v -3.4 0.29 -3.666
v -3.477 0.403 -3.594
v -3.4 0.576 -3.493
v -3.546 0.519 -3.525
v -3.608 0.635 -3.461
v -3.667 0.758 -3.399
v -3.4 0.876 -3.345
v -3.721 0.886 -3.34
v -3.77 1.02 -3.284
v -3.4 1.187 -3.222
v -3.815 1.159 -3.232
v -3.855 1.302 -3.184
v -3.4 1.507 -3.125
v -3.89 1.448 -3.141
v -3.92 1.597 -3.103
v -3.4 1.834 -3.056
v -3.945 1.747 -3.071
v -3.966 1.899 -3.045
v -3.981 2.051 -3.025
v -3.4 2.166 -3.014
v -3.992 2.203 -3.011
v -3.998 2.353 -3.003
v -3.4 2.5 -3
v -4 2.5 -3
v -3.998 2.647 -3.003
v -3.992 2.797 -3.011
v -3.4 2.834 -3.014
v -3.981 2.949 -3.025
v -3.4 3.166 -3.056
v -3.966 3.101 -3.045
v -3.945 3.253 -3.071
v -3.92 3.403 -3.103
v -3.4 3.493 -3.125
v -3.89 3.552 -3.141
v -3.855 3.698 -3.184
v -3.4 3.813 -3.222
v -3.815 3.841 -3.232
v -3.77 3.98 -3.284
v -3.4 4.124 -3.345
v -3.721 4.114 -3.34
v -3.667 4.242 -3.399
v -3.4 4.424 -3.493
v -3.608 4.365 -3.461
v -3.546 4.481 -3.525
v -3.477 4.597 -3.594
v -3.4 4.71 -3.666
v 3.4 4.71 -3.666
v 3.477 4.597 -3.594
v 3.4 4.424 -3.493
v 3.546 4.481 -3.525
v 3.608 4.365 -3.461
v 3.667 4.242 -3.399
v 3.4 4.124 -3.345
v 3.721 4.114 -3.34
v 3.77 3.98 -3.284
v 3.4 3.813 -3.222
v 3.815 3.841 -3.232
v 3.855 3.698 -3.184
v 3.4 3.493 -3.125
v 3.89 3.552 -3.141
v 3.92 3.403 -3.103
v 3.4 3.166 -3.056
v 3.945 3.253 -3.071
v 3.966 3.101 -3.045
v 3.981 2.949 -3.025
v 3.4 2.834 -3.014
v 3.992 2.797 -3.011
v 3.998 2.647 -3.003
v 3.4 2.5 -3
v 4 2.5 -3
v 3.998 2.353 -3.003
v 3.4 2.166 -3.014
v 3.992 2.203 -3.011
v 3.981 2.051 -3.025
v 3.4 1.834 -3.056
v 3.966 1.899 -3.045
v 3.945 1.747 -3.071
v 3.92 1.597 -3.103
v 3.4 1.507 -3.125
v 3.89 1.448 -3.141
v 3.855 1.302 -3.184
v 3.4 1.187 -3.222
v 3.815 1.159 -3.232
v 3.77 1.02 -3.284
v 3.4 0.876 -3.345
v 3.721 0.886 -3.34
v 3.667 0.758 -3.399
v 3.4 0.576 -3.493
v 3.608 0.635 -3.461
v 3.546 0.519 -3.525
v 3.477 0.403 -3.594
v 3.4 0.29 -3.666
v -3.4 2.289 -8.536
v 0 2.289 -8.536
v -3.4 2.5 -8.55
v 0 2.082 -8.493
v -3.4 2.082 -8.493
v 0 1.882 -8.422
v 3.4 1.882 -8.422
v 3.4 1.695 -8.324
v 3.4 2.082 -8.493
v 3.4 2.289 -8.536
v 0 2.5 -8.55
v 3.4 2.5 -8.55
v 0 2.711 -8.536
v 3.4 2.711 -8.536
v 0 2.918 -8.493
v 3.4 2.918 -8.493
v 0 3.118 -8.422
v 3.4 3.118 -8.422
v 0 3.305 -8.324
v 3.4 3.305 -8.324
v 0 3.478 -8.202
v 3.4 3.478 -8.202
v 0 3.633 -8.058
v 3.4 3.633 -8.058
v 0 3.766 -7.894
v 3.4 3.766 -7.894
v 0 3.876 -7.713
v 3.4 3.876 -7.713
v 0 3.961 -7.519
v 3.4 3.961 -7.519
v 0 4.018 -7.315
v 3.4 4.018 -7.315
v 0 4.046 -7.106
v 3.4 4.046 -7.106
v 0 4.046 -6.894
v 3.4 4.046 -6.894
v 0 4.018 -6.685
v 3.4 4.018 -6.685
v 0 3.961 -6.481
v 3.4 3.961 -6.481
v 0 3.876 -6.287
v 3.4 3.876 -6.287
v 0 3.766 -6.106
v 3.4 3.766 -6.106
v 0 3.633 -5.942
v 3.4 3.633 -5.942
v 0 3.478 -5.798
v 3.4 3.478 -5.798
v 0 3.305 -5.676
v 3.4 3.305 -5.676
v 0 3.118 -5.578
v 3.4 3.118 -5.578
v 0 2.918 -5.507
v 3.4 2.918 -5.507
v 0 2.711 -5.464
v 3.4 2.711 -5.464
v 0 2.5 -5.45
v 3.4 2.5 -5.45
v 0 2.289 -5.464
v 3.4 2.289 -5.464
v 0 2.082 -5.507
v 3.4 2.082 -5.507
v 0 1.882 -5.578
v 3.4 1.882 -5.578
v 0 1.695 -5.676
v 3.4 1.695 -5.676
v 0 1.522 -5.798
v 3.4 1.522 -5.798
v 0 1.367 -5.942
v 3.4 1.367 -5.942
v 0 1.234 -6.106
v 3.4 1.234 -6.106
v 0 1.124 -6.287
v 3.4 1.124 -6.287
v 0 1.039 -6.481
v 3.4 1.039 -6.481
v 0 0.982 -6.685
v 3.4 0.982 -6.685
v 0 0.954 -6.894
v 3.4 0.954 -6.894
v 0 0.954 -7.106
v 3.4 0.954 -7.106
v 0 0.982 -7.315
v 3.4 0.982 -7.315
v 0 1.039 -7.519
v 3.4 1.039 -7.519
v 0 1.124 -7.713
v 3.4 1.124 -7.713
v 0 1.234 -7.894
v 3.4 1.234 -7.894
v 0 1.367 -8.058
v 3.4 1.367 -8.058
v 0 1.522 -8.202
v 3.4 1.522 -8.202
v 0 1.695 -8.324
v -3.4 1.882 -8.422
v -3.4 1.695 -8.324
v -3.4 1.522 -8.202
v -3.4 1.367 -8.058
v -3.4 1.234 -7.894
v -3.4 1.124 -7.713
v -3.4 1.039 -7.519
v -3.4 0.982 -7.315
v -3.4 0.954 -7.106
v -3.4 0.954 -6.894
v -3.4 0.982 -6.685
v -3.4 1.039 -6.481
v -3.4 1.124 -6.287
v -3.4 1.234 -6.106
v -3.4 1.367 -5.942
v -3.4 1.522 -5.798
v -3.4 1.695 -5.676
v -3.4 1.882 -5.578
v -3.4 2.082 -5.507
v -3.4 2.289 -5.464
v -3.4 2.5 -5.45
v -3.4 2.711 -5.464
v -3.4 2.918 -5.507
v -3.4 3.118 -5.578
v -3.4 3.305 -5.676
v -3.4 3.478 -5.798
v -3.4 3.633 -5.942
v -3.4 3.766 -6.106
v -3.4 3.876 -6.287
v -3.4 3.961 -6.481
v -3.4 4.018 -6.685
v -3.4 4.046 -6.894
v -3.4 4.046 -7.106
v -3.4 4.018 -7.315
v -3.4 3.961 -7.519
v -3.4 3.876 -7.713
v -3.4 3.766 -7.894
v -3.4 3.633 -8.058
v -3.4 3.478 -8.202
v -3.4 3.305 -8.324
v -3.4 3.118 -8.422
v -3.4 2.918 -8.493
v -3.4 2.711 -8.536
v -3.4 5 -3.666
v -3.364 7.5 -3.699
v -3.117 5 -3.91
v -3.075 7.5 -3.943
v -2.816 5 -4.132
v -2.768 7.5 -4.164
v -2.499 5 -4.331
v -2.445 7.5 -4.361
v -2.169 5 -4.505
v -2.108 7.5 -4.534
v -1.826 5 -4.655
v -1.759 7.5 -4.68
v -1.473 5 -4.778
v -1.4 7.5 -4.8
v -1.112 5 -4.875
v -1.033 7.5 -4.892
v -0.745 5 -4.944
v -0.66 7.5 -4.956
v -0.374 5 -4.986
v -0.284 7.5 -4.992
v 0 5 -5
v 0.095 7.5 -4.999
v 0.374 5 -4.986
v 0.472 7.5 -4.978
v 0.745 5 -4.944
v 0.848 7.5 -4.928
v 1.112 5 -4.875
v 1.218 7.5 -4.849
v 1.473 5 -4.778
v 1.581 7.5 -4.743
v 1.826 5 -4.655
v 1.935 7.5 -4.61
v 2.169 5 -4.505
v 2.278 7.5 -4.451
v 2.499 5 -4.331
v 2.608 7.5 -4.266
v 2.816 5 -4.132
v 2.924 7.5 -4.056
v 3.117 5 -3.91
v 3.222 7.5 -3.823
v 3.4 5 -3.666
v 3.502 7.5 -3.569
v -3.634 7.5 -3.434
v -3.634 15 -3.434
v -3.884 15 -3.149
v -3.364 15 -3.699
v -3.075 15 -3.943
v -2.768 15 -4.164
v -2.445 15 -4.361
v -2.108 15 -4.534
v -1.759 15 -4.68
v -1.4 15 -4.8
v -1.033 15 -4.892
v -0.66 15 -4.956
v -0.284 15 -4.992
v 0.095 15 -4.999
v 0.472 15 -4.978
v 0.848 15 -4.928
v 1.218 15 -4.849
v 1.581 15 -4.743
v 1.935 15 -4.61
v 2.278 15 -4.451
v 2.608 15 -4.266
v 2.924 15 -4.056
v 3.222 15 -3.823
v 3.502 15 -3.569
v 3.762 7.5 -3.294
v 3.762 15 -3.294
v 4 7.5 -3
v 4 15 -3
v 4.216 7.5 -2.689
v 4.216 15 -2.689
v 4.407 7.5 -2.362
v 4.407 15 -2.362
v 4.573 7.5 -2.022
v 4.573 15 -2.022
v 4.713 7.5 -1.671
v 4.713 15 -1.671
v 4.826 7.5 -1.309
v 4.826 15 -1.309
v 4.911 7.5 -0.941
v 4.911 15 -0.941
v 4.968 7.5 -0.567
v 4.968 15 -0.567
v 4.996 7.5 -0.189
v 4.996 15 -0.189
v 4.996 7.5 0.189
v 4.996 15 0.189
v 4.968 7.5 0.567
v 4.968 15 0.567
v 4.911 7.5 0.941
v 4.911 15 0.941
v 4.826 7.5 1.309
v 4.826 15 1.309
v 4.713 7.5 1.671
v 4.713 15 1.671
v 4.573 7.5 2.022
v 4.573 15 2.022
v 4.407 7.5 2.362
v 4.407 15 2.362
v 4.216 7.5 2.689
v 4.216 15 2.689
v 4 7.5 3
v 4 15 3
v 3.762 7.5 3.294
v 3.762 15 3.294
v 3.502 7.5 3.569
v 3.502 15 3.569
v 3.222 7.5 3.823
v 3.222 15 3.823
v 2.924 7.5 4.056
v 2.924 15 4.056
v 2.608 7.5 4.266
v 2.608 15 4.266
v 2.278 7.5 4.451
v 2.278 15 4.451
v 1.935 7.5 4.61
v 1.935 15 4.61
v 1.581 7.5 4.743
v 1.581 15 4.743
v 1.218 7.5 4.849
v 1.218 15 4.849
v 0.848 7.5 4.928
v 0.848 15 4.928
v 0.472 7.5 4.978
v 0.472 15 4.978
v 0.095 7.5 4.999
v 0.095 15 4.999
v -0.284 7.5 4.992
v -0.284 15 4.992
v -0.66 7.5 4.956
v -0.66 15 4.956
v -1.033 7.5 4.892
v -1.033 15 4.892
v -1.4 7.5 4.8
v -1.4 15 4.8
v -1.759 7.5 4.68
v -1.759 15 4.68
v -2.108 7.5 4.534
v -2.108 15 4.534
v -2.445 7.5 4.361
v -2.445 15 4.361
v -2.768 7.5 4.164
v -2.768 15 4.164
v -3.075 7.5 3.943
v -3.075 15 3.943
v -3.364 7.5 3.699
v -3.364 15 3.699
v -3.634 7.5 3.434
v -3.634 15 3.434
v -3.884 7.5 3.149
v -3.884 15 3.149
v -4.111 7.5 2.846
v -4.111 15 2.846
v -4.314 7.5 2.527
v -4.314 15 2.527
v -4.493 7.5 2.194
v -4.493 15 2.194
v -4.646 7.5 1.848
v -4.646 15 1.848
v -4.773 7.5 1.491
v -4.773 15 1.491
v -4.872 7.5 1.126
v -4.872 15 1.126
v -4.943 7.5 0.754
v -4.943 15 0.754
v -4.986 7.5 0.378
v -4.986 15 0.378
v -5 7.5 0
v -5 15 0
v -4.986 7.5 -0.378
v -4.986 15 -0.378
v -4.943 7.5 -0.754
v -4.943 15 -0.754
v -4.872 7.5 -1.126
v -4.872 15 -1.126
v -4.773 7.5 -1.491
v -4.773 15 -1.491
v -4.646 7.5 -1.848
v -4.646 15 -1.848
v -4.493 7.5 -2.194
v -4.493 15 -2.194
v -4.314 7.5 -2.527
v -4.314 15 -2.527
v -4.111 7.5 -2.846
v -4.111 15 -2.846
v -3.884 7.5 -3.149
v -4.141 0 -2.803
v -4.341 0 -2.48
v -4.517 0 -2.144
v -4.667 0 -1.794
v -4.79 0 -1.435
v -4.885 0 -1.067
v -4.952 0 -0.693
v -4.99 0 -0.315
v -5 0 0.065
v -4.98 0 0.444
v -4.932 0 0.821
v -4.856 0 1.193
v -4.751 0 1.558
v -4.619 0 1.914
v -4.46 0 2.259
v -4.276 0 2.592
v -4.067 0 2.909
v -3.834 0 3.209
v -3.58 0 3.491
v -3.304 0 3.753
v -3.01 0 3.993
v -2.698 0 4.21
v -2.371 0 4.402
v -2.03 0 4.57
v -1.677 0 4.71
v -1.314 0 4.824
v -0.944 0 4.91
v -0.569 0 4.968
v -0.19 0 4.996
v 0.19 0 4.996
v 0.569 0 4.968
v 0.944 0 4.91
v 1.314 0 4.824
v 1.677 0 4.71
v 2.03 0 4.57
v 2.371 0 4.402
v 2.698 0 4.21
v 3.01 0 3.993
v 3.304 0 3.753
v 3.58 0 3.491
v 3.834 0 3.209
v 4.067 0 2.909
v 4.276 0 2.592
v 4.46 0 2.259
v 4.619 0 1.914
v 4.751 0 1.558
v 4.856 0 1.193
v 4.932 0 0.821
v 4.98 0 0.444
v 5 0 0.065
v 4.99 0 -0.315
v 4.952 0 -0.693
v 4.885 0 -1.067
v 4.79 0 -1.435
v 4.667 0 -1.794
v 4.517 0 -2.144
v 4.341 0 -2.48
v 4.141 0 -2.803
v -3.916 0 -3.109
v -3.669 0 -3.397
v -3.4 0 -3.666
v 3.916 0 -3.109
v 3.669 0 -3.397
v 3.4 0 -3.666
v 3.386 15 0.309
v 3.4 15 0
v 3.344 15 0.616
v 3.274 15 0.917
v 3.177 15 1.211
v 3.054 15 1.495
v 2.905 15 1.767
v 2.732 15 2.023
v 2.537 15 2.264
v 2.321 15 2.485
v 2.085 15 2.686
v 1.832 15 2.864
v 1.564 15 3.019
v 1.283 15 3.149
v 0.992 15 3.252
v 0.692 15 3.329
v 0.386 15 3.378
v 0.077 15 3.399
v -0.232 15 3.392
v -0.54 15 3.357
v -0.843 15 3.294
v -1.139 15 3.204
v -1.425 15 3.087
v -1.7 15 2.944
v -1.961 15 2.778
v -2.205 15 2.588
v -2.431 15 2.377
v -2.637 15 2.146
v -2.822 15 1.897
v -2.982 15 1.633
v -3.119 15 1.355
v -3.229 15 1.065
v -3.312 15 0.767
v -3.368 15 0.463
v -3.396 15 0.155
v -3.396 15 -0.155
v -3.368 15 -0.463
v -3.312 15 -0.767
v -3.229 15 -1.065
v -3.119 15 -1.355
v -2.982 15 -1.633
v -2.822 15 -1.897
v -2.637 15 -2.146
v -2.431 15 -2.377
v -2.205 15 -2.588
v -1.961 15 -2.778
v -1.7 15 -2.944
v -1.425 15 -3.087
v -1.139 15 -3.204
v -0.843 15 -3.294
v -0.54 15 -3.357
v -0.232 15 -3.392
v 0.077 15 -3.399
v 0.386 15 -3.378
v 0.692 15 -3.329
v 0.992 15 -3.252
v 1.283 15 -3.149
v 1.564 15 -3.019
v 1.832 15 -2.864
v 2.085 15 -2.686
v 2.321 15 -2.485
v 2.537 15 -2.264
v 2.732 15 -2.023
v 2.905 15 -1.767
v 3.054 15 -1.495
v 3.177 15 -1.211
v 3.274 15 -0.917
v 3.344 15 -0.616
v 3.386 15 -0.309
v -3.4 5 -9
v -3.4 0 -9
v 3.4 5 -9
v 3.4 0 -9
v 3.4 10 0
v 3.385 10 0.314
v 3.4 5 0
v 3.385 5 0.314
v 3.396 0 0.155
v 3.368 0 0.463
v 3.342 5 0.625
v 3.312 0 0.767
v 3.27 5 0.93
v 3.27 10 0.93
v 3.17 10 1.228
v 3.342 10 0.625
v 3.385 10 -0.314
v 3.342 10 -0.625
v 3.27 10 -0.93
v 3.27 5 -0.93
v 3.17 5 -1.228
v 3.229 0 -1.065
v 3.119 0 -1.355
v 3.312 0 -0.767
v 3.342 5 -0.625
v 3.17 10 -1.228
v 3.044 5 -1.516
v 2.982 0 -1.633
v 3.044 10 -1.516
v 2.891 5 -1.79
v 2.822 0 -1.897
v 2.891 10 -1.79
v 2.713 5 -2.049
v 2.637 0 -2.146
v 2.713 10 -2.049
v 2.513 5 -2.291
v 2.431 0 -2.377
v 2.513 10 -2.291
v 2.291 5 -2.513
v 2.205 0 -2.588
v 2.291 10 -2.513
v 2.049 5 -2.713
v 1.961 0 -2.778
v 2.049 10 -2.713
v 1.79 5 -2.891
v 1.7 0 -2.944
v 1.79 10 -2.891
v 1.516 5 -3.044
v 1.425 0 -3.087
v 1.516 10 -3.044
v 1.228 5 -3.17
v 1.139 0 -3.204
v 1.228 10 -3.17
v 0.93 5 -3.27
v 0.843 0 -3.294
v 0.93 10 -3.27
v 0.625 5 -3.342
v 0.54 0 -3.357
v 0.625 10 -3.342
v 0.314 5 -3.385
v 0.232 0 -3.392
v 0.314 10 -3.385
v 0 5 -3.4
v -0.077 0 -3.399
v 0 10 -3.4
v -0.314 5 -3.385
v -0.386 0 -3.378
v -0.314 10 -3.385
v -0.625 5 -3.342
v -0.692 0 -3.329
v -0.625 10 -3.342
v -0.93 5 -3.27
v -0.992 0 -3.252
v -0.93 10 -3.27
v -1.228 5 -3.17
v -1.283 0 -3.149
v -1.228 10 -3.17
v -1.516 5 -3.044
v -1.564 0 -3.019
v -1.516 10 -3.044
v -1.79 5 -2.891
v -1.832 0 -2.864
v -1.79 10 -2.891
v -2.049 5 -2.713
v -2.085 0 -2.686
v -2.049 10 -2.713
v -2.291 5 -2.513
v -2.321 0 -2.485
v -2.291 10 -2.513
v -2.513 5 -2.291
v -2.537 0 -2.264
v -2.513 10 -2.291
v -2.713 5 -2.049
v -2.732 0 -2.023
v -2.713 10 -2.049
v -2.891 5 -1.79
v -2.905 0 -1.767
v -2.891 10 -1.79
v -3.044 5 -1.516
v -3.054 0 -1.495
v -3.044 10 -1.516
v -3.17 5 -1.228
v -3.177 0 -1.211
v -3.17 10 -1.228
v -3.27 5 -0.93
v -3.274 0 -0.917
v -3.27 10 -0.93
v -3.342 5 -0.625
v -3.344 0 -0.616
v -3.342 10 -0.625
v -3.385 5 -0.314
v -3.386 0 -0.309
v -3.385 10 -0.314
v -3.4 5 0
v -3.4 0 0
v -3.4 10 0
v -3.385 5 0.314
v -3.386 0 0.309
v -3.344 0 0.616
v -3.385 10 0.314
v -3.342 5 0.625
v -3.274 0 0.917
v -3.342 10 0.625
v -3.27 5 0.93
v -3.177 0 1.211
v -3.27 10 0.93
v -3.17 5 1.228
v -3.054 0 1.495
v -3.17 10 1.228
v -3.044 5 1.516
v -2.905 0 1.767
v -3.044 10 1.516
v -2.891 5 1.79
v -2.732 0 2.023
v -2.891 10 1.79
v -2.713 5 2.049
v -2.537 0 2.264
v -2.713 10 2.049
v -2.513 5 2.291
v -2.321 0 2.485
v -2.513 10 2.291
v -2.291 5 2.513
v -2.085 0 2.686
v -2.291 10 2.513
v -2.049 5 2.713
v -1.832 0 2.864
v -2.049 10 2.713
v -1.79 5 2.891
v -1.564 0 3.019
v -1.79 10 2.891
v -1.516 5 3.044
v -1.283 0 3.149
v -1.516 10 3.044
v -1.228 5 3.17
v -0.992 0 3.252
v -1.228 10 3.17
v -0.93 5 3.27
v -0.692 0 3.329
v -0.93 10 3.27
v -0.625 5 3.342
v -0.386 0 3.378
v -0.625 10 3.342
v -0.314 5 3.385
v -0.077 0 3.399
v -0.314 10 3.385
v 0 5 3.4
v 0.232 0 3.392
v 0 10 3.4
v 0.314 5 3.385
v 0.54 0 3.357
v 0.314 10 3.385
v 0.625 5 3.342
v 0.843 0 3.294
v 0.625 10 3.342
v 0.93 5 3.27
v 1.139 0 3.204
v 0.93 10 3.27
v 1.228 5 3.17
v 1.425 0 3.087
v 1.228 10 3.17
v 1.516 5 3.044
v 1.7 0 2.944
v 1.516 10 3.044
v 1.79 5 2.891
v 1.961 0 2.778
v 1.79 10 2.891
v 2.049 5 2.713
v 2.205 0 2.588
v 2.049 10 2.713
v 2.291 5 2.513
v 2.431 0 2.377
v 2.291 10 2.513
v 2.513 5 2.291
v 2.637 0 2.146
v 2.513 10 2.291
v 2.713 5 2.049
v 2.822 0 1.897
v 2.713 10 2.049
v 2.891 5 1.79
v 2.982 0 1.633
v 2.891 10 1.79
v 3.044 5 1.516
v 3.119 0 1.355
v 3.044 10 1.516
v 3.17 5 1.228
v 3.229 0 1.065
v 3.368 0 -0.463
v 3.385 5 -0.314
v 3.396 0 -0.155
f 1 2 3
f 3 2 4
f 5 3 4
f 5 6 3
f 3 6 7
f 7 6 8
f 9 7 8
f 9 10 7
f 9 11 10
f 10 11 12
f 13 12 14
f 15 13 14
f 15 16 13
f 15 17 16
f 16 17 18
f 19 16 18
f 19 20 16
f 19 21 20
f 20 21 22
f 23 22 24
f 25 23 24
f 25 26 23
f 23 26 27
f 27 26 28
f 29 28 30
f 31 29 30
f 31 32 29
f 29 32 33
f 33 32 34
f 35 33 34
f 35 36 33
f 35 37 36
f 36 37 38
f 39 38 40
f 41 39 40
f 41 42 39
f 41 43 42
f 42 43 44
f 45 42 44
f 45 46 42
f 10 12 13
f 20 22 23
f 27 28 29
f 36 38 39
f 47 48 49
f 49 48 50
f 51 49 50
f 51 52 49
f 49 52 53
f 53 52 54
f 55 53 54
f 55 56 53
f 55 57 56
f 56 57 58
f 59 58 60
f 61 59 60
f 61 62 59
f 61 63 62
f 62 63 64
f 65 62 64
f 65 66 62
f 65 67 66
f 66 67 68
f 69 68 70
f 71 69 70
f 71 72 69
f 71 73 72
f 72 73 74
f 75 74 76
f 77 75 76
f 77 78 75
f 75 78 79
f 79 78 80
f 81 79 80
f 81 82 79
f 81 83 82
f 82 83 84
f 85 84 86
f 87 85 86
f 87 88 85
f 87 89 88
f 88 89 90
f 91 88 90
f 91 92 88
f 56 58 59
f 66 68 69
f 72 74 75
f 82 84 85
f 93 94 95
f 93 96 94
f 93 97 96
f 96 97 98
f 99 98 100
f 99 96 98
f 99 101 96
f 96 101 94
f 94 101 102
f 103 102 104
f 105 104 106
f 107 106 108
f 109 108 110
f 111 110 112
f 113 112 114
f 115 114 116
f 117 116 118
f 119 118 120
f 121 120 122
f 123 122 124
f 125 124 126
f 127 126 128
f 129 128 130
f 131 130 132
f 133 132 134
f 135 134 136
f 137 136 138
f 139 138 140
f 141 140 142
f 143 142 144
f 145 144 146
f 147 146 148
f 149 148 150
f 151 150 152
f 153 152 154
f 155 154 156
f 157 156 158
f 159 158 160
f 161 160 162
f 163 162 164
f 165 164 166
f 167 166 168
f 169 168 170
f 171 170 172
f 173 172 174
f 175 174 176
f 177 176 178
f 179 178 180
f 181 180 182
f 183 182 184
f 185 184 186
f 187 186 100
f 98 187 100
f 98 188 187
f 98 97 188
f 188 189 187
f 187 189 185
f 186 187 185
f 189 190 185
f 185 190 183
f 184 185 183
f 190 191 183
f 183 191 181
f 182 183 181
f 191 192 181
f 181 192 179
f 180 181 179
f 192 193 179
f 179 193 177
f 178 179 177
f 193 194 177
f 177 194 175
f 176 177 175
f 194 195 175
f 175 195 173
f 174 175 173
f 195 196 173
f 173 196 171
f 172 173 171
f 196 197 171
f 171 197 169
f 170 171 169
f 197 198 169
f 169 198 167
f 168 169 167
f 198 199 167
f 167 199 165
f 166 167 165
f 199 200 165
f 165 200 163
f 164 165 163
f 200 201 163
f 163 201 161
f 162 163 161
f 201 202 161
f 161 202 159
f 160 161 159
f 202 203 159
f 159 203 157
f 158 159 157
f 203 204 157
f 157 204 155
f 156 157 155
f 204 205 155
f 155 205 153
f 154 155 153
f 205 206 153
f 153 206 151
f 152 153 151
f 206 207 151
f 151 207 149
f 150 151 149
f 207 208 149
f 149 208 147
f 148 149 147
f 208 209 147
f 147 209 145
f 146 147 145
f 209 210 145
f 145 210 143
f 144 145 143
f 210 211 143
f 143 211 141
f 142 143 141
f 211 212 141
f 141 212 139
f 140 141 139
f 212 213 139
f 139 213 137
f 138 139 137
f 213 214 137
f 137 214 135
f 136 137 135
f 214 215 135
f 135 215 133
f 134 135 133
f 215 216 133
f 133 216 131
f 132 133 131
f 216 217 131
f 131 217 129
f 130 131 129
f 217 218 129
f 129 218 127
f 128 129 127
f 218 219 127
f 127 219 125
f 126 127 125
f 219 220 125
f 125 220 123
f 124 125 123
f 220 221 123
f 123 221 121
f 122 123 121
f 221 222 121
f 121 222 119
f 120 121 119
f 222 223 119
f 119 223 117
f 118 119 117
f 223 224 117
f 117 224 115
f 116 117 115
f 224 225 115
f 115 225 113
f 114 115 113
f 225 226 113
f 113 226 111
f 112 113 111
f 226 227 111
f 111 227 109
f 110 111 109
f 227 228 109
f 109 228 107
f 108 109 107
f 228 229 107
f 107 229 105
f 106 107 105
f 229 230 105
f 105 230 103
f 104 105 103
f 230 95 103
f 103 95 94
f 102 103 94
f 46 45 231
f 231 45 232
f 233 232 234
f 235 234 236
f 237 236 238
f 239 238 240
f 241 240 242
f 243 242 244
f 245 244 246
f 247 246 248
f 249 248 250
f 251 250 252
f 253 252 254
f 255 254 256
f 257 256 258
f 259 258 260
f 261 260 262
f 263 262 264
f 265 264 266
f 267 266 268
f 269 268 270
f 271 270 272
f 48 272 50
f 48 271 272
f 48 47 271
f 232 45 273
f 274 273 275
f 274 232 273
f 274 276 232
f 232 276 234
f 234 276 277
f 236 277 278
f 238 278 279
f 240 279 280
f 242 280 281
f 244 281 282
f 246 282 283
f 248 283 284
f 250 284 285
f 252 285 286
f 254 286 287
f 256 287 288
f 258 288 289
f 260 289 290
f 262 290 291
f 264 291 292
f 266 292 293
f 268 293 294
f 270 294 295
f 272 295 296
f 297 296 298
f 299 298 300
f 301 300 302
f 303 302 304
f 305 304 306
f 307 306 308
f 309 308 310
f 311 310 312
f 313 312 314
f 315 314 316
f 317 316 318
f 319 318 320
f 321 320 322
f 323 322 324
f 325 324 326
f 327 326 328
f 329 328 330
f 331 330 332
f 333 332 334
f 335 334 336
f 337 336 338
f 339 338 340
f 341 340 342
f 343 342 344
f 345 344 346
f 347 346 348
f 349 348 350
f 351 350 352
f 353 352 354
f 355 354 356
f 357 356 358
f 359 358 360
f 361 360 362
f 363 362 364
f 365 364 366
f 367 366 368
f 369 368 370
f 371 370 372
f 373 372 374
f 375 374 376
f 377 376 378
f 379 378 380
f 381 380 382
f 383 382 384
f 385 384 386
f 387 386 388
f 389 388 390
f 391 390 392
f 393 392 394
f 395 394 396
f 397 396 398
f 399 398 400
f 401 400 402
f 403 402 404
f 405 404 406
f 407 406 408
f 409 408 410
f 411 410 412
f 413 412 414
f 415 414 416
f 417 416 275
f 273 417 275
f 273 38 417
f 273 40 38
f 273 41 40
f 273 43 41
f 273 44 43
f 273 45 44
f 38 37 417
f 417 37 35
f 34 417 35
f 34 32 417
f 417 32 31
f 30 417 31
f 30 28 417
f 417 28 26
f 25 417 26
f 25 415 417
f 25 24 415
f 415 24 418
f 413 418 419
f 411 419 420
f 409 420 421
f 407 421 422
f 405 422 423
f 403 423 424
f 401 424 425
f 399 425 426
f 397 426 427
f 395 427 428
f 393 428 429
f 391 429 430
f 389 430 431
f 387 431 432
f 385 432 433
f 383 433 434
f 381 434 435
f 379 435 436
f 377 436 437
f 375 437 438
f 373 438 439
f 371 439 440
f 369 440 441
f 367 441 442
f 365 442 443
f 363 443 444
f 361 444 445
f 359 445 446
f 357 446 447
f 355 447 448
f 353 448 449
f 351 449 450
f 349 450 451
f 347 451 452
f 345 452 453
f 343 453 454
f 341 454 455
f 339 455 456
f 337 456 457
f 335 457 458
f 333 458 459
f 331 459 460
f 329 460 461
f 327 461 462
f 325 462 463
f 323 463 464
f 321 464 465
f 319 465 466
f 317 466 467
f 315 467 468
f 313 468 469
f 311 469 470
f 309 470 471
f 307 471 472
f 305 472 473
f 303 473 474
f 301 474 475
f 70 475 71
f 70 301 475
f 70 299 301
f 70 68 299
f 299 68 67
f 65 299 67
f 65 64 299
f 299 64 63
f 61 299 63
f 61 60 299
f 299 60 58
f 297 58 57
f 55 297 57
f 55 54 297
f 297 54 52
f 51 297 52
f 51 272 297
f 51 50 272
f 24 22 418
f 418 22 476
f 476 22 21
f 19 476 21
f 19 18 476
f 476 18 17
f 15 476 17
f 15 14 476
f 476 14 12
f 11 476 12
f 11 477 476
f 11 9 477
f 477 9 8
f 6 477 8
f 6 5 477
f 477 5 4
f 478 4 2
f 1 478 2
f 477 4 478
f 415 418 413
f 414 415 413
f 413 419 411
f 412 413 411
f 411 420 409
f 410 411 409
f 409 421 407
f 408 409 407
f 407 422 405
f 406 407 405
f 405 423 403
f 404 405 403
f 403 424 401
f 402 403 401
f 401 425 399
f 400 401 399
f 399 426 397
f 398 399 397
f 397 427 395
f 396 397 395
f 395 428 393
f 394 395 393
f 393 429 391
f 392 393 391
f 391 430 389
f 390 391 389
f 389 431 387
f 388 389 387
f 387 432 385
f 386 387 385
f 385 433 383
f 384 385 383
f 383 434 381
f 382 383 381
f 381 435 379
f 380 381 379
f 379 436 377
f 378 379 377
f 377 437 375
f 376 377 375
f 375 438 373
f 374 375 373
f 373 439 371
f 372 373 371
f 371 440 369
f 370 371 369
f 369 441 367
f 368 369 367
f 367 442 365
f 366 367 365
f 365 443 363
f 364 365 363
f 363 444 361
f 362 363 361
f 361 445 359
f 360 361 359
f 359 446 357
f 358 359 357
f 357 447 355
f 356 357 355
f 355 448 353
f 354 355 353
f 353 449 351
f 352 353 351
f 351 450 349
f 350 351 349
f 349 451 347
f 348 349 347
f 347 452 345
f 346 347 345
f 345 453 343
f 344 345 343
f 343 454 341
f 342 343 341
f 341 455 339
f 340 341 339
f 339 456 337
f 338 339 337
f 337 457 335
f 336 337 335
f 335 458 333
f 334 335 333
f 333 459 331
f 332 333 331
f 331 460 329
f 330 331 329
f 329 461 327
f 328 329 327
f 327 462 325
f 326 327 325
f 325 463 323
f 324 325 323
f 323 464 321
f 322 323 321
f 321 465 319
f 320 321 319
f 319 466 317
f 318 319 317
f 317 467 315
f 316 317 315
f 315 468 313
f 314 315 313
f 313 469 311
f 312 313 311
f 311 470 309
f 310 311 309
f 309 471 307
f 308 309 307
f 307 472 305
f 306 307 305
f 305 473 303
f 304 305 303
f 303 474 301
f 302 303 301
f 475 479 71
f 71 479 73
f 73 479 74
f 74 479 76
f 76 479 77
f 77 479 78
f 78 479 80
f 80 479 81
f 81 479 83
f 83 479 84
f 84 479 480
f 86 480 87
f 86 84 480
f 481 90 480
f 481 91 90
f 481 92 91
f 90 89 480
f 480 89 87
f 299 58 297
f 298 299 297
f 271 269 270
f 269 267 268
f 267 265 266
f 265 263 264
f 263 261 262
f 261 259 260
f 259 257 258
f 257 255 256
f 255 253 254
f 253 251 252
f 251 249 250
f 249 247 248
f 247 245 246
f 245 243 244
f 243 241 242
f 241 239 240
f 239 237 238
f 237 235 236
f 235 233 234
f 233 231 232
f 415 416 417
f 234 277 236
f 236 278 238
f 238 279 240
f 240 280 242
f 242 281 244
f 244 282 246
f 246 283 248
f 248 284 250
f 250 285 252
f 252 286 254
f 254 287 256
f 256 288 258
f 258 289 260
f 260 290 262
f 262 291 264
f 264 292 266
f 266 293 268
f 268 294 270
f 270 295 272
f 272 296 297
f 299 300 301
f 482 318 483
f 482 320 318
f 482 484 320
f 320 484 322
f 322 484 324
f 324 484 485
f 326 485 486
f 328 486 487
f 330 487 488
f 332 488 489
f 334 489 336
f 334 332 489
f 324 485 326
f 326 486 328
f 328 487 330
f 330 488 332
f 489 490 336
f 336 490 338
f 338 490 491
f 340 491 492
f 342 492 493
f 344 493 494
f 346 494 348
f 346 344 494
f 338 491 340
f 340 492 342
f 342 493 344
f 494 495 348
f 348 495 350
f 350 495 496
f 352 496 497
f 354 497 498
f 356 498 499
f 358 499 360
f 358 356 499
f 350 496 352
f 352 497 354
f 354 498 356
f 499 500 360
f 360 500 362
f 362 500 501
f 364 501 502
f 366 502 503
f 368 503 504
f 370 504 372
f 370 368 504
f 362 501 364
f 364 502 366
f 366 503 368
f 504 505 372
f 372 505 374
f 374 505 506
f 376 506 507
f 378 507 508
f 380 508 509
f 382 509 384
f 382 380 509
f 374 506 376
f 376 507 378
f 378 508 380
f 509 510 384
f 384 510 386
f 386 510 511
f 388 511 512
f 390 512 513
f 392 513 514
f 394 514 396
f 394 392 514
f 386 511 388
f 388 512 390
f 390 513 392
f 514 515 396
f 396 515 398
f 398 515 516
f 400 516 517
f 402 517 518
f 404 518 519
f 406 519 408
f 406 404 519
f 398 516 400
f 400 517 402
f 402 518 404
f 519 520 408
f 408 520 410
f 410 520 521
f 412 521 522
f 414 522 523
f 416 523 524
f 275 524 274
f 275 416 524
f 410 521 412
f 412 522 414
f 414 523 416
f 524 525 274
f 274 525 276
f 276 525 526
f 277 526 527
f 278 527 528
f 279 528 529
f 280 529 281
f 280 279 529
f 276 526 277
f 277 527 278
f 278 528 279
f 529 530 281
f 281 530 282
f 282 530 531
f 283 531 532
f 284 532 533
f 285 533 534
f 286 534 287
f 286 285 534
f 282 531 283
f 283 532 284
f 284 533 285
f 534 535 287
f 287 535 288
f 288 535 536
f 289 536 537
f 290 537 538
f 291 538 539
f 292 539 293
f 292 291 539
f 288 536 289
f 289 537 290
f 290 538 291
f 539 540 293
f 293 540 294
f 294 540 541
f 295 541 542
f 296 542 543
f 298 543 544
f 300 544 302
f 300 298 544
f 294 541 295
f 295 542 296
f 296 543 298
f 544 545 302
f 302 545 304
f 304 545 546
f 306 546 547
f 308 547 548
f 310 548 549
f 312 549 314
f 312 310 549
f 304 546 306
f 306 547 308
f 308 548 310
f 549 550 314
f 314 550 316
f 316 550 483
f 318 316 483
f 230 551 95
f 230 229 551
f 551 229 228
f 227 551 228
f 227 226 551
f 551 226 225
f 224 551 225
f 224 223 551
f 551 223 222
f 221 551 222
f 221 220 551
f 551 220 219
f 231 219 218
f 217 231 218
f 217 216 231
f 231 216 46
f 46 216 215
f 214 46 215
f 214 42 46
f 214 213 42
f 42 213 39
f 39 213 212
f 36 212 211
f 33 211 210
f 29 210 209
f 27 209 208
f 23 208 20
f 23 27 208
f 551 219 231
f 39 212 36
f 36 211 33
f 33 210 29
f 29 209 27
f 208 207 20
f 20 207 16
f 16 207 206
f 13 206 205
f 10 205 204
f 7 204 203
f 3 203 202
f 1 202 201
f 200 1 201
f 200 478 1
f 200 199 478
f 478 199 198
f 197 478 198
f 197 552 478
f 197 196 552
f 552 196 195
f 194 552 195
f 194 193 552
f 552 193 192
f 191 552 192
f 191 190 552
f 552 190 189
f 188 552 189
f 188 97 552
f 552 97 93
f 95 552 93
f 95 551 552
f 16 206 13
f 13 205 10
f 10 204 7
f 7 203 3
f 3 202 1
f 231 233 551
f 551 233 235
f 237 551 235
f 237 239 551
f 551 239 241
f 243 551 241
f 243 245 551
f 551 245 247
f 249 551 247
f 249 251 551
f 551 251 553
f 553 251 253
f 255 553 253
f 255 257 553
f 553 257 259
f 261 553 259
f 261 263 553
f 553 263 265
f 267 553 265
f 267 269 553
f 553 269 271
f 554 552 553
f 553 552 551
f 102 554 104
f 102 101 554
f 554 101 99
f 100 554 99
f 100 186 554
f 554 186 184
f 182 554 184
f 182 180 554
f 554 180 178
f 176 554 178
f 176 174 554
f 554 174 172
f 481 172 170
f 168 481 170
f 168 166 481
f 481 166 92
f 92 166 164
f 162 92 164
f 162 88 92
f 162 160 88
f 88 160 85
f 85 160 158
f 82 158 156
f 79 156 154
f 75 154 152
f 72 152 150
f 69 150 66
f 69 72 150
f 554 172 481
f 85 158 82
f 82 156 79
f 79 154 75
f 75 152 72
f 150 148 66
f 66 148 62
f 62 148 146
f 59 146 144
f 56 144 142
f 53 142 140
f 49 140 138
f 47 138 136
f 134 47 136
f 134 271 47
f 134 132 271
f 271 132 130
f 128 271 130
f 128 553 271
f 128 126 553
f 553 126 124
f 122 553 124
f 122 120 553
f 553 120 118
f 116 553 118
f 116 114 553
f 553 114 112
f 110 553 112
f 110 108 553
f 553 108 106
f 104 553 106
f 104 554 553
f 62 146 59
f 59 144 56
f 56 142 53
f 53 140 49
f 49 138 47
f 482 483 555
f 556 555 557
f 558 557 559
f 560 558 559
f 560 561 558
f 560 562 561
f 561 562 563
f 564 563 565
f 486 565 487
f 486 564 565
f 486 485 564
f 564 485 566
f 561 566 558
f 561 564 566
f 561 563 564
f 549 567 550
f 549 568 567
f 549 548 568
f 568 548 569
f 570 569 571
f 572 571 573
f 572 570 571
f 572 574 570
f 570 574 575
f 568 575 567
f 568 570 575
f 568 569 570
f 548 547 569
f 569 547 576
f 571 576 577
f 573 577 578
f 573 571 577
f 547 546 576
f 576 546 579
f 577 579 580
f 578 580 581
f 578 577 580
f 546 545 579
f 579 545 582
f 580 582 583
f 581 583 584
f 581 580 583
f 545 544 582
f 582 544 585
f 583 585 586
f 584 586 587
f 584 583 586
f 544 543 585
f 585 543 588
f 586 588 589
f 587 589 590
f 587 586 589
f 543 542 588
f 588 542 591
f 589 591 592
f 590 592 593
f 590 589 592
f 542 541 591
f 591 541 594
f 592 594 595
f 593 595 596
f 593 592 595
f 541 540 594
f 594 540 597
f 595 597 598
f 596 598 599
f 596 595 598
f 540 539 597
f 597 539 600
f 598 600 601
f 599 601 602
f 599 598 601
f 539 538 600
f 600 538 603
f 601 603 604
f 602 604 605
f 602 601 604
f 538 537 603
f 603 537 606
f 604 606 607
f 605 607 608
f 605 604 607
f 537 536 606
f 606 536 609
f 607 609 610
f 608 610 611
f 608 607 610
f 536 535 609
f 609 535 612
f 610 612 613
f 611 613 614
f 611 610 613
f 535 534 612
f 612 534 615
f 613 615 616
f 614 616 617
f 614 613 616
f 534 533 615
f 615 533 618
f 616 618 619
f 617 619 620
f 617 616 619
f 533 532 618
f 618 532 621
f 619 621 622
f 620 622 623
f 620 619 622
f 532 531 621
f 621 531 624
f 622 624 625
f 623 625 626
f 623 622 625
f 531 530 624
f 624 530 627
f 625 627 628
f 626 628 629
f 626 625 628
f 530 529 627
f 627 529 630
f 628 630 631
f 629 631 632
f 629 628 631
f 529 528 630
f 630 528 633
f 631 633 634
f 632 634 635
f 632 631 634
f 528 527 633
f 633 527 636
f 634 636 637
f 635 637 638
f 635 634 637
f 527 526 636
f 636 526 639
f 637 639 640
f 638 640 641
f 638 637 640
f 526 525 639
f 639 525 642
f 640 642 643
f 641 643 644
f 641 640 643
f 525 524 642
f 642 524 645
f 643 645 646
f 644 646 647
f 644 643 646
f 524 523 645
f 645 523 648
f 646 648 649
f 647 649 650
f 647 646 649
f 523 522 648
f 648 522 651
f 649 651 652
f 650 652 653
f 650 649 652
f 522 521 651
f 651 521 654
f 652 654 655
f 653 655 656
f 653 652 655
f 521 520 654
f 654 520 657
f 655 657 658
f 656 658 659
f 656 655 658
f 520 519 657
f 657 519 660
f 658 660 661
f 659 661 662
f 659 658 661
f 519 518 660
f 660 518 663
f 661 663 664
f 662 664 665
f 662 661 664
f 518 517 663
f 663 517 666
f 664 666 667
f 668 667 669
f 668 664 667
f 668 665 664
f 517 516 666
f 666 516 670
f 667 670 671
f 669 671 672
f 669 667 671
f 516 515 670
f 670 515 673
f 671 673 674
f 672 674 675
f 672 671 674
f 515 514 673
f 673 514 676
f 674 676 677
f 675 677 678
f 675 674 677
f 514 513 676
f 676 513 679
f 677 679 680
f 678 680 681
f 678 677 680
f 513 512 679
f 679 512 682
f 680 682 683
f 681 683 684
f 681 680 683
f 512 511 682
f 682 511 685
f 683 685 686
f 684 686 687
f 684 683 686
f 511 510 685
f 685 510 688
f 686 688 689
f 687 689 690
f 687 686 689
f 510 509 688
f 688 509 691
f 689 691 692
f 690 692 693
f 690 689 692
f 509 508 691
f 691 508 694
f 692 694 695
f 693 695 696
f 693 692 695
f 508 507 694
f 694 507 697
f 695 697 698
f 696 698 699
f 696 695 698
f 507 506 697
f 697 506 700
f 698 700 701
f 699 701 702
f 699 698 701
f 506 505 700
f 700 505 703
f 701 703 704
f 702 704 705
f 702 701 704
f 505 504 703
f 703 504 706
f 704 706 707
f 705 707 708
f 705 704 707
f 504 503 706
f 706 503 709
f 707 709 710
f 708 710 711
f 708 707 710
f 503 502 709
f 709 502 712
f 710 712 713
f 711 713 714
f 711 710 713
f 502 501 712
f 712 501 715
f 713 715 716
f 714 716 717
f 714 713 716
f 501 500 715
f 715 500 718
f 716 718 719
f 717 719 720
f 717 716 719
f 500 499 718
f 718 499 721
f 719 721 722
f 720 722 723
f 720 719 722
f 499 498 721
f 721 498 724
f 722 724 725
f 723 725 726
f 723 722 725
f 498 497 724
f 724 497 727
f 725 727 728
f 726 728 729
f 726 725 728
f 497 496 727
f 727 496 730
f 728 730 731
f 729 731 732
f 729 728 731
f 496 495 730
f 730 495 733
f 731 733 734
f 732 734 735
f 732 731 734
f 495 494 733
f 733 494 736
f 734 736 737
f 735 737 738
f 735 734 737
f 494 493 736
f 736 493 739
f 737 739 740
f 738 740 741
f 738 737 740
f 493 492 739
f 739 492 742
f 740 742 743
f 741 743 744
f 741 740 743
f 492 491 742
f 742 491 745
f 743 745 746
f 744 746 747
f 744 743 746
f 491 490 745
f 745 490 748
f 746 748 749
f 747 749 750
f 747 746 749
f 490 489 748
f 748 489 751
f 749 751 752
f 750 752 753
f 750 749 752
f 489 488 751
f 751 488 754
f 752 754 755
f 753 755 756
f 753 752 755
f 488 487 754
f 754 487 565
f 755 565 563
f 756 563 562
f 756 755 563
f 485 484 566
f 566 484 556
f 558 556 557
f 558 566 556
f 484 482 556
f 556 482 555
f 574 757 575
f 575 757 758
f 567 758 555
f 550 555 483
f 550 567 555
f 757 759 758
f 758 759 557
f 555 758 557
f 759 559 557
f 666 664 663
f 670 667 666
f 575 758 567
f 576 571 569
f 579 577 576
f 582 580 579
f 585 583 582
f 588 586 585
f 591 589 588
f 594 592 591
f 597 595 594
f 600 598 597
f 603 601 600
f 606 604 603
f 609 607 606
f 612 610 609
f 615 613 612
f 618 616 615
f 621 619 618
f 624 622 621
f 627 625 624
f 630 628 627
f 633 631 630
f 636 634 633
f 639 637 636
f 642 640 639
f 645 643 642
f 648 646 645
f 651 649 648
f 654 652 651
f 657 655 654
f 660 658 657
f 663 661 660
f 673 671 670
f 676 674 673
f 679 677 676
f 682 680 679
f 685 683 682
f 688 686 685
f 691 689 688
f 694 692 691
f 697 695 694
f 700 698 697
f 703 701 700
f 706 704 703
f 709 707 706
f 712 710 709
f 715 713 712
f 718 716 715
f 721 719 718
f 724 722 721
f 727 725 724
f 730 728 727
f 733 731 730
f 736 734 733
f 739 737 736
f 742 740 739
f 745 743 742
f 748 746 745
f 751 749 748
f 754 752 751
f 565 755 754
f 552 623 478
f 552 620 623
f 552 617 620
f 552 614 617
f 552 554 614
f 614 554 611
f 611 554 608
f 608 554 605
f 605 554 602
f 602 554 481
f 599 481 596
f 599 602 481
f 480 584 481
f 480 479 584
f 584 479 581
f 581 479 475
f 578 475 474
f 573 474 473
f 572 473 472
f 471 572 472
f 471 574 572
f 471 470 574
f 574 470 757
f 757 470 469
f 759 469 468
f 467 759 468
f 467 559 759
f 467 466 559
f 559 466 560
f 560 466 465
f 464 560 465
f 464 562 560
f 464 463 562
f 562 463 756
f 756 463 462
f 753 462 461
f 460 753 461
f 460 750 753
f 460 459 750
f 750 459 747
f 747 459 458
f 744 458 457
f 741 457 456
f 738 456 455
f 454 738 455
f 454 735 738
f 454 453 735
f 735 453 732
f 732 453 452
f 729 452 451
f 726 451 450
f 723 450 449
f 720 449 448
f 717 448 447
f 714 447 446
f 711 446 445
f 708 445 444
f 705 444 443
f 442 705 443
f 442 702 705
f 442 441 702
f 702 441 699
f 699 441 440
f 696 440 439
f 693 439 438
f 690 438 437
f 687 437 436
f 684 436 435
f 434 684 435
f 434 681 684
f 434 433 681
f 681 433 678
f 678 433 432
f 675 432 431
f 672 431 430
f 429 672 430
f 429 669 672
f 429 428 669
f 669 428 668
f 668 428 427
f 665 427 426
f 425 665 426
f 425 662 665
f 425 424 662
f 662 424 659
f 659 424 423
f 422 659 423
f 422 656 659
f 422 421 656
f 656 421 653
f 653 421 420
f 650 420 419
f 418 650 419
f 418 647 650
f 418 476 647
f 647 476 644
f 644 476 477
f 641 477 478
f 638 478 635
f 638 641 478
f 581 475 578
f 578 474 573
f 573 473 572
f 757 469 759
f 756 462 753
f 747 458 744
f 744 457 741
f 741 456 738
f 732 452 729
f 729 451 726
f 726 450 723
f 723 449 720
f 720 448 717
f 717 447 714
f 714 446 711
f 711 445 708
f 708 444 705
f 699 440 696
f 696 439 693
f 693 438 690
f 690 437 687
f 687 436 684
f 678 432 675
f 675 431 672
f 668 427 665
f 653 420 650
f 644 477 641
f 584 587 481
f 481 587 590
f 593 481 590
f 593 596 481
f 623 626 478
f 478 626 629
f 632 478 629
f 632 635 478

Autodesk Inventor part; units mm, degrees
ref_plane "YZ Plane" through (0, 0, 0) normal (1, 0, 0) x (0, 1, 0)
ref_plane "XZ Plane" through (0, 0, 0) normal (0, 1, 0) x (-1, 0, 0)
ref_plane "XY Plane" through (0, 0, 0) normal (0, 0, 1) x (1, 0, 0)
sketch "Sketch1" plane through (0, 0, 0) normal (0, 1, 0) x (-1, 0, 0)
  circle A0 centre (0, 0) radius 3.4
  circle A1 centre (0, 0) radius 5
  line L0 (3.4, 0) -> (3.4, -9)
  line L1 (3.4, -9) -> (-3.4, -9)
  line L2 (-3.4, -9) -> (-3.4, 0)
  dimension "d0" = 6.8
  dimension "d1" = 10
  dimension "d2" = 9
extrude "Extrusion1" add sketch "Sketch1" along normal blind 5 contours L0 A1 L2 A0 | L0 L1 L2 A1 picked at (2.574, -3.6186)
extrude "Extrusion2" add sketch "Sketch1" along normal blind 15 contours L0 A1 L2 A0 | A0 L2 A1 L0
sketch "Sketch2" plane through (3.4, 0, -9) normal (1, 0, 0) x (0, 0, -1)
  line L0 (0, 5) -> (0, 2.5)
  line L1 (0, 0) -> (0, 5) projected
  line L2 (0, 2.5) -> (-2, 2.5)
  circle A0 centre (-2, 2.5) radius 1.55
  circle A1 centre (-2, 2.5) radius 4
  point P0 (-9, 0)
  dimension "d7" = 2.5
  dimension "d8" = 2
  dimension "d9" = 3.1
  dimension "d10" = 8
extrude "Extrusion3" cut sketch "Sketch2" against normal blind 15 contours A0
extrude "Extrusion4" cut sketch "Sketch2" along normal blind 15
sketch "Sketch3" plane through (-3.4, 0, -9) normal (-1, 0, 0) x (0, 0, 1)
  line L0 (0, 5) -> (2, 5)
  line L1 (0, 5) -> (5.3339, 5) projected
  line L2 (2, 5) -> (2, 2.5)
  circle A0 centre (2, 2.5) radius 4
  point P0 (9, 0)
  dimension "d15" = 2
  dimension "d16" = 2.5
  dimension "d17" = 8
extrude "Extrusion5" cut sketch "Sketch3" along normal blind 15
properties part number "push_clip(2)"
